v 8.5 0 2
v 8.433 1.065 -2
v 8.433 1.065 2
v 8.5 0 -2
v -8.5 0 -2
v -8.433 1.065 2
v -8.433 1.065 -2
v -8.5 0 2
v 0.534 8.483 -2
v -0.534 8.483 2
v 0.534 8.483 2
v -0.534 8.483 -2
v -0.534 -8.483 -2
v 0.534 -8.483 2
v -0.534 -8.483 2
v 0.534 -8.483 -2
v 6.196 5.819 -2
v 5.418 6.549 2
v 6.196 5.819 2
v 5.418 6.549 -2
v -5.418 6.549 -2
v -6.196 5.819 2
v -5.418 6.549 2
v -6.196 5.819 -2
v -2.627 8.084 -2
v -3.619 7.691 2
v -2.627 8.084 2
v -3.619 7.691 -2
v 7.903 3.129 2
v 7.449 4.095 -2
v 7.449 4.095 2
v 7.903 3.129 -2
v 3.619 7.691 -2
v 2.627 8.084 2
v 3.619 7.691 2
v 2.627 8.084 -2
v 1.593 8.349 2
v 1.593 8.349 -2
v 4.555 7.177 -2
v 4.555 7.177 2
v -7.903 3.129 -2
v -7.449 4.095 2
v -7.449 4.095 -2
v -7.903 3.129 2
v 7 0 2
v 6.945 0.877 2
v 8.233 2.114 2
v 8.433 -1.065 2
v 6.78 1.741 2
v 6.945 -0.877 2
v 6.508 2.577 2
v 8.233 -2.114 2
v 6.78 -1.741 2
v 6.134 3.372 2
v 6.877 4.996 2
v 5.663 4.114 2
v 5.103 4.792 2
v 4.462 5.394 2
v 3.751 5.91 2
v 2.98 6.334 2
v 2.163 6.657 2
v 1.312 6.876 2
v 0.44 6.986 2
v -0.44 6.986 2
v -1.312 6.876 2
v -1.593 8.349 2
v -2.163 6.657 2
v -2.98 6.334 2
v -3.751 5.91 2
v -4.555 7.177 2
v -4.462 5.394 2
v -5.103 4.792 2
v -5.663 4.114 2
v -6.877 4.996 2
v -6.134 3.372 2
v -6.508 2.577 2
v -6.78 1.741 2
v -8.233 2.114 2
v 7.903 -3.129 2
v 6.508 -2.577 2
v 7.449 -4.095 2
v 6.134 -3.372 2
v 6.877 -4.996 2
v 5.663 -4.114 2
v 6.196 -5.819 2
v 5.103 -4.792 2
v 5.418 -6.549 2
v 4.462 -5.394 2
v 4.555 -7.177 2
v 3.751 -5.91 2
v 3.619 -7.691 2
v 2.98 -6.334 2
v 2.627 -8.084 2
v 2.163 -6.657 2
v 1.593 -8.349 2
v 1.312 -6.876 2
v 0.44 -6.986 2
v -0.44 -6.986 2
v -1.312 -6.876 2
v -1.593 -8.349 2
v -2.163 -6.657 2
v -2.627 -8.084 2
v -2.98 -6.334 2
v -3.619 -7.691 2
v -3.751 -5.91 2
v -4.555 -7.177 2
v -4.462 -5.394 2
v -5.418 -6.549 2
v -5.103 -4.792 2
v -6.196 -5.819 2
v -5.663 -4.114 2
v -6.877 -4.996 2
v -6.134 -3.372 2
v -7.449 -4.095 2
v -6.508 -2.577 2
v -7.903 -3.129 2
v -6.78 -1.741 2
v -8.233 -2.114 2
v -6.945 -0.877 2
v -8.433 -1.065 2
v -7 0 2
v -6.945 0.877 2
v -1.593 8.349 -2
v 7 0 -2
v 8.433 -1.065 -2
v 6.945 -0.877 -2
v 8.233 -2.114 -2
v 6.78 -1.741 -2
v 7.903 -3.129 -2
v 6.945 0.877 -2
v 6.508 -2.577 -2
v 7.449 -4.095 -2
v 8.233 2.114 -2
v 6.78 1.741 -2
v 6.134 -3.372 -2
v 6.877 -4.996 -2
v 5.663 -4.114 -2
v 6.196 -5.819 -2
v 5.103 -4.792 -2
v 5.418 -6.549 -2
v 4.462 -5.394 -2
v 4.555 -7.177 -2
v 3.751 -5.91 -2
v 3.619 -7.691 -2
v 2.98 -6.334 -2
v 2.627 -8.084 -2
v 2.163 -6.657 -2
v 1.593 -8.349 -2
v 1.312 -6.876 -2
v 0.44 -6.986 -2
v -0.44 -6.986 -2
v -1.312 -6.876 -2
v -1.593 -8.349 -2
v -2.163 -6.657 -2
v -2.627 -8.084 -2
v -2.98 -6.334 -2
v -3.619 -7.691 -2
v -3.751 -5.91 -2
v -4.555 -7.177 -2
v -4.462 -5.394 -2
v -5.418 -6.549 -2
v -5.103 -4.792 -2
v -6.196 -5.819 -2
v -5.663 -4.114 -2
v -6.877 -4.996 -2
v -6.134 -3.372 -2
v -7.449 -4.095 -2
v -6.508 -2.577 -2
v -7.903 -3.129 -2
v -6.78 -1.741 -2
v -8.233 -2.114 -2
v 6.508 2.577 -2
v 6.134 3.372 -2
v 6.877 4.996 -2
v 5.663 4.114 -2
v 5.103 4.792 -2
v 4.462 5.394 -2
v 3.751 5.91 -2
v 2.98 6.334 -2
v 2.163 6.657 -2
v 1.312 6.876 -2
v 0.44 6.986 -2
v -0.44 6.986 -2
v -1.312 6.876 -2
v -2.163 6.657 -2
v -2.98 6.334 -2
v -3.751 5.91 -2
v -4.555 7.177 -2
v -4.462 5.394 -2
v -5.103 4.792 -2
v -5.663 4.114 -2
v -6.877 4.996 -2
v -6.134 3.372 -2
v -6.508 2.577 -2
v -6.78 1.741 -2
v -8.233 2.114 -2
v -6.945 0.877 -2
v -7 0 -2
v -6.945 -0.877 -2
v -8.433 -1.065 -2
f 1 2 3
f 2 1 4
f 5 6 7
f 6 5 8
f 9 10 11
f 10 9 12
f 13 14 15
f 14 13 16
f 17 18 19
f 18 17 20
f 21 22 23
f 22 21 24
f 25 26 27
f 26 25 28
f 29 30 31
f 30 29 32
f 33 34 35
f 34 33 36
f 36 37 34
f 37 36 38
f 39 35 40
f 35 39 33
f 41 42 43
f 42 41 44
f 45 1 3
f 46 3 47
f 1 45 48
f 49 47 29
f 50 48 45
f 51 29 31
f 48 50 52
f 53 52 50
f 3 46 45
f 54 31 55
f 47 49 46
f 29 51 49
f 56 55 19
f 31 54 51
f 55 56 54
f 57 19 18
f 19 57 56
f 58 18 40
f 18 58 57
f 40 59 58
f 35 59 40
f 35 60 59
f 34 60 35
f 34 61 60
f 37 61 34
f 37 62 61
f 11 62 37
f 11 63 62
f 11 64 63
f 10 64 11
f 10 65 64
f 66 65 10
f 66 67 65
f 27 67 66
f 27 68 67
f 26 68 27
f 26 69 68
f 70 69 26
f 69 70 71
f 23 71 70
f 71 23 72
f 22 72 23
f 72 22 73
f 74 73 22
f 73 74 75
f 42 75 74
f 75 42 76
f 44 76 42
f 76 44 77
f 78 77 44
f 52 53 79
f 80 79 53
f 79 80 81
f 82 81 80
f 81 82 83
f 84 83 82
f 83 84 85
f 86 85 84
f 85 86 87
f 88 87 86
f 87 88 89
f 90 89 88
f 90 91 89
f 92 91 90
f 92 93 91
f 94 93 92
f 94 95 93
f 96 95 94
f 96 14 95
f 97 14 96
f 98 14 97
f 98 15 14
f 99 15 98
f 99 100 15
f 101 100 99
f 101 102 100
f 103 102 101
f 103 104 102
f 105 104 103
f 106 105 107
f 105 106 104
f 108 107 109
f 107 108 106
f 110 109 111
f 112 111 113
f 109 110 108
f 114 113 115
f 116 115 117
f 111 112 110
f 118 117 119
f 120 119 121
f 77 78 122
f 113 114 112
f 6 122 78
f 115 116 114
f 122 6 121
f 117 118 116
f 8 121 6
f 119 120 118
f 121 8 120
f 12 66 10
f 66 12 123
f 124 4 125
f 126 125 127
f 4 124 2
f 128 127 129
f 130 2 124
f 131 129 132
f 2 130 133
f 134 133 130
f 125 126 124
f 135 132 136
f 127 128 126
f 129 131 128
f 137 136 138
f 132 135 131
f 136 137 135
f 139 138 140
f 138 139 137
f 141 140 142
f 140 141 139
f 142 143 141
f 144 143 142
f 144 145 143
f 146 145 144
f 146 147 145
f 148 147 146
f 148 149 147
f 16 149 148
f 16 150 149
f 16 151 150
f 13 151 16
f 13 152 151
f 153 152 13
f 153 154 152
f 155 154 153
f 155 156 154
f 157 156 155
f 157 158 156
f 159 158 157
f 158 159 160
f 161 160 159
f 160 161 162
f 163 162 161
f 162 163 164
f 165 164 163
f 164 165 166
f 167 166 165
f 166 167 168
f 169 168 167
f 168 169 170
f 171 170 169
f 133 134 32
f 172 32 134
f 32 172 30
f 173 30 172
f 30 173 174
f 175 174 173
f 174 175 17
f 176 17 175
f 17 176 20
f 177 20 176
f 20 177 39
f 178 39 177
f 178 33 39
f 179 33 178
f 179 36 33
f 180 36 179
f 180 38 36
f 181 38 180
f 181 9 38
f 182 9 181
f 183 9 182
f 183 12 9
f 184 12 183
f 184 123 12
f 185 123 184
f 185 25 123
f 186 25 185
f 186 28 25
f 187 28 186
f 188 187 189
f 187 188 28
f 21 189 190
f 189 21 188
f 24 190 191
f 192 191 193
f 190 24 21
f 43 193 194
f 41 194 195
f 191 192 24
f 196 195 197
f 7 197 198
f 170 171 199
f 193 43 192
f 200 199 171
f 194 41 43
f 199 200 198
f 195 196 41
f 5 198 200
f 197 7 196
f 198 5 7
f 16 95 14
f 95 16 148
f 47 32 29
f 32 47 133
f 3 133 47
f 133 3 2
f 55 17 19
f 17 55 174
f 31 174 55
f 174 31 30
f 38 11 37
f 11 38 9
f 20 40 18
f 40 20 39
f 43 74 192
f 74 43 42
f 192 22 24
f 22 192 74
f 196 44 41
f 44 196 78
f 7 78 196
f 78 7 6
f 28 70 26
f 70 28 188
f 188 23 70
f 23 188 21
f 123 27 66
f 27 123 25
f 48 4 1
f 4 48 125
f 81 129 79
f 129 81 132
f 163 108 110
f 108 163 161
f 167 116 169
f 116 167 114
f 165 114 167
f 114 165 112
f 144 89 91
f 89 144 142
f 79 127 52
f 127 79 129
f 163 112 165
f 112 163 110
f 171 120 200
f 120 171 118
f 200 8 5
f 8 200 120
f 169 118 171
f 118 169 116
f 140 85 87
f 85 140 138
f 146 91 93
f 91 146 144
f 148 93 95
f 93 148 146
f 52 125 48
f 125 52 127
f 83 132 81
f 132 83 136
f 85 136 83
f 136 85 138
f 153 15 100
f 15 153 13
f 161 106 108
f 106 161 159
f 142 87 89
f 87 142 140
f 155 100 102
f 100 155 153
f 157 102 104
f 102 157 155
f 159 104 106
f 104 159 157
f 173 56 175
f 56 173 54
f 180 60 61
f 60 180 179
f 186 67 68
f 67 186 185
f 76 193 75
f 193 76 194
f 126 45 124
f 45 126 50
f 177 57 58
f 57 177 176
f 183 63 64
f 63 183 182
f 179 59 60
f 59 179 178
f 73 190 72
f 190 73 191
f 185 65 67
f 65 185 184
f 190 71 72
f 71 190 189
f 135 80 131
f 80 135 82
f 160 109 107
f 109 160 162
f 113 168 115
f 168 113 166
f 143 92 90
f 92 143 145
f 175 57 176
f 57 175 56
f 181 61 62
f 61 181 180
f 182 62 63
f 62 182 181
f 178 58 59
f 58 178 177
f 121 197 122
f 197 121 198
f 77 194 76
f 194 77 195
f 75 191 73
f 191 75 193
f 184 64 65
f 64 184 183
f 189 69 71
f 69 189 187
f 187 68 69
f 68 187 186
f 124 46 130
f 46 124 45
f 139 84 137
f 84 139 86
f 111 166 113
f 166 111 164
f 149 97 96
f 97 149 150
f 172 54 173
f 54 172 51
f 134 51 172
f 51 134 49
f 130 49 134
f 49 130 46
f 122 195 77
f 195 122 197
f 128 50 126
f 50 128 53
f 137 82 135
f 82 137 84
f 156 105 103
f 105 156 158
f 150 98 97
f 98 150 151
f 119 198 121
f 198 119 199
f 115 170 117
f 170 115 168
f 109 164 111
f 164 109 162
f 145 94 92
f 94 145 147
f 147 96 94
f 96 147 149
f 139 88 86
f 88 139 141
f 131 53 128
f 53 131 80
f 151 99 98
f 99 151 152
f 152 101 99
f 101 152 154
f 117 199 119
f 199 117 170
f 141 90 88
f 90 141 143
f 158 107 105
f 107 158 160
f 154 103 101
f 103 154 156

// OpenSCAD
$fn = 50;


difference() {
	union() {
		translate(v = [0, 0, -2.0000000000]) {
			cylinder(h = 4, r = 8.5000000000);
		}
	}
	union() {
		translate(v = [0, 0, -100.0000000000]) {
			cylinder(h = 200, r = 7);
		}
	}
}
